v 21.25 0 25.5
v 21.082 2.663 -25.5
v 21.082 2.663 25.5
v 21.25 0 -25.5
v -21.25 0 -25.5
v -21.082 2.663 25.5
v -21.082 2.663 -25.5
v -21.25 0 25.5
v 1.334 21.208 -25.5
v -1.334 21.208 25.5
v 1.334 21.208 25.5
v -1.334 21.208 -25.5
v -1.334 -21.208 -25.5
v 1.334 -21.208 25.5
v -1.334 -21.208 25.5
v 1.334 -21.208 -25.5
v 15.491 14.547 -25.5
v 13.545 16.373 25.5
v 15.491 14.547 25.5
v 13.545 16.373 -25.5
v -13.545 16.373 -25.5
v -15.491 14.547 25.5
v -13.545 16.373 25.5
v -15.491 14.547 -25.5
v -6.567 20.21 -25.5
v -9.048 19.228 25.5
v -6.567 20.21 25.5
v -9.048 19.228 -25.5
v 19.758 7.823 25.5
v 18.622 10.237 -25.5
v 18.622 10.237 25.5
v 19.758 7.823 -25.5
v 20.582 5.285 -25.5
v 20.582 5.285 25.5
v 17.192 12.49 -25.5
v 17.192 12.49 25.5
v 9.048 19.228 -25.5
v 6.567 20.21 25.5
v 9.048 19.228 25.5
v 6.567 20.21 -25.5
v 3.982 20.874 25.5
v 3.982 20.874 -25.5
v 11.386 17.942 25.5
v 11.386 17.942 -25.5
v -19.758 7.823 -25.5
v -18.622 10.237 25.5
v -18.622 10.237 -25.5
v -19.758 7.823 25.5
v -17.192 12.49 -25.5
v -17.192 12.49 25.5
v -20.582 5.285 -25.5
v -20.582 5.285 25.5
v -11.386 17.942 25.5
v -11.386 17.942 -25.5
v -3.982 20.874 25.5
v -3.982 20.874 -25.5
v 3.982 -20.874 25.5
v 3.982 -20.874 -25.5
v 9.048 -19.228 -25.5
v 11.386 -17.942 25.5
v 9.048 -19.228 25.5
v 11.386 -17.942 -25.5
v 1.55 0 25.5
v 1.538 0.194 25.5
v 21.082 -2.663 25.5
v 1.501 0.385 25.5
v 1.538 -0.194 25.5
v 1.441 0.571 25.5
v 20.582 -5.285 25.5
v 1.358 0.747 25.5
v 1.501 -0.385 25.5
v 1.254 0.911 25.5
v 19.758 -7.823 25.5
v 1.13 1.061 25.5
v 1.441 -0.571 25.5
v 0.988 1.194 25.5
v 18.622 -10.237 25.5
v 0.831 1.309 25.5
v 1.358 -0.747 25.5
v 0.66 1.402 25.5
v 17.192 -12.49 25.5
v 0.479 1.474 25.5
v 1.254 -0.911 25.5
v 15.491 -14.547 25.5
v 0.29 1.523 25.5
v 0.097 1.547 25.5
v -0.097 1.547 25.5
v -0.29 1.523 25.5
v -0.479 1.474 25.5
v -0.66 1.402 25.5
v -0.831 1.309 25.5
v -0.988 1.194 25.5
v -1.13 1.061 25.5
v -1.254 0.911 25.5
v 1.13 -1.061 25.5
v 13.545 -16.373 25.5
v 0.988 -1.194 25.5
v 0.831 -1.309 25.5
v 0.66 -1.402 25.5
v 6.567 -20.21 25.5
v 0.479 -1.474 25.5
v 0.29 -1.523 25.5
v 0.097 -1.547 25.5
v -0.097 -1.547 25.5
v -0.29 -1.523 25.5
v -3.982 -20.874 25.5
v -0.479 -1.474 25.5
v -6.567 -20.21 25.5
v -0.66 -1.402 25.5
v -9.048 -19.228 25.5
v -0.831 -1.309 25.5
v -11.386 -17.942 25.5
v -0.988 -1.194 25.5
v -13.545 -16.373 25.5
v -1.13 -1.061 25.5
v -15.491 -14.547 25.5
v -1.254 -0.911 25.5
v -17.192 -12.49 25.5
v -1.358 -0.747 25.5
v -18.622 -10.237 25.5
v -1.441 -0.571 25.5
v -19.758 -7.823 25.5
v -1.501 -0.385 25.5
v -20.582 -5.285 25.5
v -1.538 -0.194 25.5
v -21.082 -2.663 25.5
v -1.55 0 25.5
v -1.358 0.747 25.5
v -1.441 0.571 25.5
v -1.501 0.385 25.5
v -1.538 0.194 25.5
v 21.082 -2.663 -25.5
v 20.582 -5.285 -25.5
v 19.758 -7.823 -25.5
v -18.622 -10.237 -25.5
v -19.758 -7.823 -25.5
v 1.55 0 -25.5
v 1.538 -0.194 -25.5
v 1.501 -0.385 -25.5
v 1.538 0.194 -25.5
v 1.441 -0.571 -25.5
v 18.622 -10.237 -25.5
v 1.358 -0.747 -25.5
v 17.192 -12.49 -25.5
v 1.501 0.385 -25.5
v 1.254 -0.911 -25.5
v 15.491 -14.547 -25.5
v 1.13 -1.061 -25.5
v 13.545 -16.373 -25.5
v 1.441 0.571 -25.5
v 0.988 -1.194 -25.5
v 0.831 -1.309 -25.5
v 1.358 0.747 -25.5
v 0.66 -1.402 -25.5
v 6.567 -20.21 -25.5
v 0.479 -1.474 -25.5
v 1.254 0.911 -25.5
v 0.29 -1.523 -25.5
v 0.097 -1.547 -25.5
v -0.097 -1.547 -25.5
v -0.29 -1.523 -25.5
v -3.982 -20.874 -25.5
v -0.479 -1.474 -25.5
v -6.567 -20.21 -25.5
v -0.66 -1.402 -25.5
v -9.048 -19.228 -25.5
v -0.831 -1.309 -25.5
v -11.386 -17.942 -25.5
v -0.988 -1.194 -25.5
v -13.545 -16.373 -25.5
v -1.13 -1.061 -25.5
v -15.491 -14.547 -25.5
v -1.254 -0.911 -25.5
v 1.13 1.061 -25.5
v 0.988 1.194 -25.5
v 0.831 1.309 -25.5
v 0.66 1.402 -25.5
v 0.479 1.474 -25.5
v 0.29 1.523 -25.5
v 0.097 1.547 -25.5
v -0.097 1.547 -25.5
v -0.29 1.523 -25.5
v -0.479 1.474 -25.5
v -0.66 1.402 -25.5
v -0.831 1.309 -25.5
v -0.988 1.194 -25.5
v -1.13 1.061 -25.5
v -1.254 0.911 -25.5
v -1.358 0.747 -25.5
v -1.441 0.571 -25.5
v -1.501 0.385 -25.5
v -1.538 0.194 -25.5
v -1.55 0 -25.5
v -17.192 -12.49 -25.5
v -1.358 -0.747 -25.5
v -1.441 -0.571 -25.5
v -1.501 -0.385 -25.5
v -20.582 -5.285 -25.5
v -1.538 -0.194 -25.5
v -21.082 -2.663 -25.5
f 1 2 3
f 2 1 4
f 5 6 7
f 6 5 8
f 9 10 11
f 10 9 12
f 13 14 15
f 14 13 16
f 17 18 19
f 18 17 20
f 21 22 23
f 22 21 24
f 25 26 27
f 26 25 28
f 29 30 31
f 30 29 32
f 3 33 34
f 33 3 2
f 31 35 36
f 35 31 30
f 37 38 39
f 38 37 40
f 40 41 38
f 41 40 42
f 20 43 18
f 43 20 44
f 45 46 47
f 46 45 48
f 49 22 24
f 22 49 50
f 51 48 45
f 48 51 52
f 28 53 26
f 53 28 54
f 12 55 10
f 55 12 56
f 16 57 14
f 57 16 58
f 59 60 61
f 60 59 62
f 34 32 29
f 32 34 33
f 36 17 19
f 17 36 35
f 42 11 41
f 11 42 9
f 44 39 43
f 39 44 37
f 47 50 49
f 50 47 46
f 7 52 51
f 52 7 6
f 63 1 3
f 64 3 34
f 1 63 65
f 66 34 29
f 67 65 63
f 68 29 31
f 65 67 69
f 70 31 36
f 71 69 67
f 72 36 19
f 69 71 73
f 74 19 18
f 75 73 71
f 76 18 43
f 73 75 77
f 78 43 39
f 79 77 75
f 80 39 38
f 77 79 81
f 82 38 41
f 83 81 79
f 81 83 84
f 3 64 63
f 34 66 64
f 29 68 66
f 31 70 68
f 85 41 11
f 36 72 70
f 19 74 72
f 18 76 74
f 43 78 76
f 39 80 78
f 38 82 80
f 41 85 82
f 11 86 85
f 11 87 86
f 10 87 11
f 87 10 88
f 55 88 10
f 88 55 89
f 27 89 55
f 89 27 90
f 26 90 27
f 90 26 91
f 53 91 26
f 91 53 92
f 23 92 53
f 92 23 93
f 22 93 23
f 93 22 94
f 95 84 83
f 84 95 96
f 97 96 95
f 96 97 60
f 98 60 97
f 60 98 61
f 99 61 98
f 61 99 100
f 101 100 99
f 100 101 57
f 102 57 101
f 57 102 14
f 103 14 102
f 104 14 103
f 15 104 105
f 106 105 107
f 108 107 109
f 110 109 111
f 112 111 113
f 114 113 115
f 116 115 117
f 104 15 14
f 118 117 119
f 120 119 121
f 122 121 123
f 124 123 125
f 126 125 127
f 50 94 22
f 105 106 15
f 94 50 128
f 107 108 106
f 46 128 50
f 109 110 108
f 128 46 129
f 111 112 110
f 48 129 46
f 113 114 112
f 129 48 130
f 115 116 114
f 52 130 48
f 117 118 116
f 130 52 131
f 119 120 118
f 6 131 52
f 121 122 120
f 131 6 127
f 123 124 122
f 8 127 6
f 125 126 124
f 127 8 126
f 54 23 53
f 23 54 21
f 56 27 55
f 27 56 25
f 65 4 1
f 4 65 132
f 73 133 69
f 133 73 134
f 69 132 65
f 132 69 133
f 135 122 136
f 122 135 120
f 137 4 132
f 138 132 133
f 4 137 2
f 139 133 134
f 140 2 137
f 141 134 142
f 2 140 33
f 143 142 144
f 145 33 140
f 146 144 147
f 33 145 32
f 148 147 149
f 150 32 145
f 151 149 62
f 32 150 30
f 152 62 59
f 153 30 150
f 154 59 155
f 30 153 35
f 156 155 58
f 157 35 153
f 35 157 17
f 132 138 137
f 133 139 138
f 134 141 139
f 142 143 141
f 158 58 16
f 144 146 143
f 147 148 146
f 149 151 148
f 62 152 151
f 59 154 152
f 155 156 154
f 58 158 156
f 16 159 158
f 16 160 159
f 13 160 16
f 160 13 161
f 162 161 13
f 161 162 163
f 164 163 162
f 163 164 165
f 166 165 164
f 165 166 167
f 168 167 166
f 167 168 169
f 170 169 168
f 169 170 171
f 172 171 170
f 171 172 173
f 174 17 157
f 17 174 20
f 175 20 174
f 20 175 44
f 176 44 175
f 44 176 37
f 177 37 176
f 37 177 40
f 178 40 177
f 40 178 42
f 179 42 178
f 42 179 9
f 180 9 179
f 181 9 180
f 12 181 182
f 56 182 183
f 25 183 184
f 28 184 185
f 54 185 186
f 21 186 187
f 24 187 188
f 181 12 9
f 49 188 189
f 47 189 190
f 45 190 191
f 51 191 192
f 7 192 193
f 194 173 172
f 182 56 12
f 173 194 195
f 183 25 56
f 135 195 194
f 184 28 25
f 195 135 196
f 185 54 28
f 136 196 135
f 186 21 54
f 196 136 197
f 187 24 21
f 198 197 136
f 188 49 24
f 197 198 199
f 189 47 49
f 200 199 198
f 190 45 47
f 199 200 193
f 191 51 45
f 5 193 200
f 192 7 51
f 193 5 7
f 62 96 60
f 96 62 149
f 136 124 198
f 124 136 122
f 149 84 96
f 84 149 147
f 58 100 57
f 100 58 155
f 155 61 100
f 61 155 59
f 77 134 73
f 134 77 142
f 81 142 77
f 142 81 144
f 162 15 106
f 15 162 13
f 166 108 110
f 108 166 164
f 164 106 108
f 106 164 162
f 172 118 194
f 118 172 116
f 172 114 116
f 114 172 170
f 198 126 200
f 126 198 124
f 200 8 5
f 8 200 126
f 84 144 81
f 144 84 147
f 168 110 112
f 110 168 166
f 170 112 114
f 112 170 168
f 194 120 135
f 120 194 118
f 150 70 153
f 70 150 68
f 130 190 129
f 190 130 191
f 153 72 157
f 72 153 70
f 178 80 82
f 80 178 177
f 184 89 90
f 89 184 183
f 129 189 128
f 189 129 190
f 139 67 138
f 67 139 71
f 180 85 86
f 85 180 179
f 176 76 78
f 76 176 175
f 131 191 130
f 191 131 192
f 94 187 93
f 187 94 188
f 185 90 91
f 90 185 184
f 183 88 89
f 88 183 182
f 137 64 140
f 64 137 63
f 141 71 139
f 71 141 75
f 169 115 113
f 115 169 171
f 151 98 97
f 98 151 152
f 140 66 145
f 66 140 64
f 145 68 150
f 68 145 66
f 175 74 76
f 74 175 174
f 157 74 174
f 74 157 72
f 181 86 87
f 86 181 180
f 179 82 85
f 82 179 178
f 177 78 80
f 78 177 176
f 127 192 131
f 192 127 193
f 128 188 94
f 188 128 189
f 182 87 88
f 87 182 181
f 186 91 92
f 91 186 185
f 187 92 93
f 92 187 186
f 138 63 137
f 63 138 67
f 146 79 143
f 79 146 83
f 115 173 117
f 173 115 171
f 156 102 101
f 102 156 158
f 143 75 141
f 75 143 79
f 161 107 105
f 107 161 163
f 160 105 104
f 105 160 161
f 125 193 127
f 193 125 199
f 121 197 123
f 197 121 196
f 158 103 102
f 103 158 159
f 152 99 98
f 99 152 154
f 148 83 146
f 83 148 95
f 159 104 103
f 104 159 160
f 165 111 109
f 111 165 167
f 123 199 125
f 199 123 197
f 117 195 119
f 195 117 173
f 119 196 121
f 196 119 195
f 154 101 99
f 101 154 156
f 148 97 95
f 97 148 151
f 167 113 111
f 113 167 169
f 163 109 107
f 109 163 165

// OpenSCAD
$fn = 50;


difference() {
	union() {
		translate(v = [0, 0, -25.5000000000]) {
			cylinder(h = 51, r = 21.2500000000);
		}
	}
	union() {
		translate(v = [0, 0, -100.0000000000]) {
			cylinder(h = 200, r = 1.5500000000);
		}
	}
}
